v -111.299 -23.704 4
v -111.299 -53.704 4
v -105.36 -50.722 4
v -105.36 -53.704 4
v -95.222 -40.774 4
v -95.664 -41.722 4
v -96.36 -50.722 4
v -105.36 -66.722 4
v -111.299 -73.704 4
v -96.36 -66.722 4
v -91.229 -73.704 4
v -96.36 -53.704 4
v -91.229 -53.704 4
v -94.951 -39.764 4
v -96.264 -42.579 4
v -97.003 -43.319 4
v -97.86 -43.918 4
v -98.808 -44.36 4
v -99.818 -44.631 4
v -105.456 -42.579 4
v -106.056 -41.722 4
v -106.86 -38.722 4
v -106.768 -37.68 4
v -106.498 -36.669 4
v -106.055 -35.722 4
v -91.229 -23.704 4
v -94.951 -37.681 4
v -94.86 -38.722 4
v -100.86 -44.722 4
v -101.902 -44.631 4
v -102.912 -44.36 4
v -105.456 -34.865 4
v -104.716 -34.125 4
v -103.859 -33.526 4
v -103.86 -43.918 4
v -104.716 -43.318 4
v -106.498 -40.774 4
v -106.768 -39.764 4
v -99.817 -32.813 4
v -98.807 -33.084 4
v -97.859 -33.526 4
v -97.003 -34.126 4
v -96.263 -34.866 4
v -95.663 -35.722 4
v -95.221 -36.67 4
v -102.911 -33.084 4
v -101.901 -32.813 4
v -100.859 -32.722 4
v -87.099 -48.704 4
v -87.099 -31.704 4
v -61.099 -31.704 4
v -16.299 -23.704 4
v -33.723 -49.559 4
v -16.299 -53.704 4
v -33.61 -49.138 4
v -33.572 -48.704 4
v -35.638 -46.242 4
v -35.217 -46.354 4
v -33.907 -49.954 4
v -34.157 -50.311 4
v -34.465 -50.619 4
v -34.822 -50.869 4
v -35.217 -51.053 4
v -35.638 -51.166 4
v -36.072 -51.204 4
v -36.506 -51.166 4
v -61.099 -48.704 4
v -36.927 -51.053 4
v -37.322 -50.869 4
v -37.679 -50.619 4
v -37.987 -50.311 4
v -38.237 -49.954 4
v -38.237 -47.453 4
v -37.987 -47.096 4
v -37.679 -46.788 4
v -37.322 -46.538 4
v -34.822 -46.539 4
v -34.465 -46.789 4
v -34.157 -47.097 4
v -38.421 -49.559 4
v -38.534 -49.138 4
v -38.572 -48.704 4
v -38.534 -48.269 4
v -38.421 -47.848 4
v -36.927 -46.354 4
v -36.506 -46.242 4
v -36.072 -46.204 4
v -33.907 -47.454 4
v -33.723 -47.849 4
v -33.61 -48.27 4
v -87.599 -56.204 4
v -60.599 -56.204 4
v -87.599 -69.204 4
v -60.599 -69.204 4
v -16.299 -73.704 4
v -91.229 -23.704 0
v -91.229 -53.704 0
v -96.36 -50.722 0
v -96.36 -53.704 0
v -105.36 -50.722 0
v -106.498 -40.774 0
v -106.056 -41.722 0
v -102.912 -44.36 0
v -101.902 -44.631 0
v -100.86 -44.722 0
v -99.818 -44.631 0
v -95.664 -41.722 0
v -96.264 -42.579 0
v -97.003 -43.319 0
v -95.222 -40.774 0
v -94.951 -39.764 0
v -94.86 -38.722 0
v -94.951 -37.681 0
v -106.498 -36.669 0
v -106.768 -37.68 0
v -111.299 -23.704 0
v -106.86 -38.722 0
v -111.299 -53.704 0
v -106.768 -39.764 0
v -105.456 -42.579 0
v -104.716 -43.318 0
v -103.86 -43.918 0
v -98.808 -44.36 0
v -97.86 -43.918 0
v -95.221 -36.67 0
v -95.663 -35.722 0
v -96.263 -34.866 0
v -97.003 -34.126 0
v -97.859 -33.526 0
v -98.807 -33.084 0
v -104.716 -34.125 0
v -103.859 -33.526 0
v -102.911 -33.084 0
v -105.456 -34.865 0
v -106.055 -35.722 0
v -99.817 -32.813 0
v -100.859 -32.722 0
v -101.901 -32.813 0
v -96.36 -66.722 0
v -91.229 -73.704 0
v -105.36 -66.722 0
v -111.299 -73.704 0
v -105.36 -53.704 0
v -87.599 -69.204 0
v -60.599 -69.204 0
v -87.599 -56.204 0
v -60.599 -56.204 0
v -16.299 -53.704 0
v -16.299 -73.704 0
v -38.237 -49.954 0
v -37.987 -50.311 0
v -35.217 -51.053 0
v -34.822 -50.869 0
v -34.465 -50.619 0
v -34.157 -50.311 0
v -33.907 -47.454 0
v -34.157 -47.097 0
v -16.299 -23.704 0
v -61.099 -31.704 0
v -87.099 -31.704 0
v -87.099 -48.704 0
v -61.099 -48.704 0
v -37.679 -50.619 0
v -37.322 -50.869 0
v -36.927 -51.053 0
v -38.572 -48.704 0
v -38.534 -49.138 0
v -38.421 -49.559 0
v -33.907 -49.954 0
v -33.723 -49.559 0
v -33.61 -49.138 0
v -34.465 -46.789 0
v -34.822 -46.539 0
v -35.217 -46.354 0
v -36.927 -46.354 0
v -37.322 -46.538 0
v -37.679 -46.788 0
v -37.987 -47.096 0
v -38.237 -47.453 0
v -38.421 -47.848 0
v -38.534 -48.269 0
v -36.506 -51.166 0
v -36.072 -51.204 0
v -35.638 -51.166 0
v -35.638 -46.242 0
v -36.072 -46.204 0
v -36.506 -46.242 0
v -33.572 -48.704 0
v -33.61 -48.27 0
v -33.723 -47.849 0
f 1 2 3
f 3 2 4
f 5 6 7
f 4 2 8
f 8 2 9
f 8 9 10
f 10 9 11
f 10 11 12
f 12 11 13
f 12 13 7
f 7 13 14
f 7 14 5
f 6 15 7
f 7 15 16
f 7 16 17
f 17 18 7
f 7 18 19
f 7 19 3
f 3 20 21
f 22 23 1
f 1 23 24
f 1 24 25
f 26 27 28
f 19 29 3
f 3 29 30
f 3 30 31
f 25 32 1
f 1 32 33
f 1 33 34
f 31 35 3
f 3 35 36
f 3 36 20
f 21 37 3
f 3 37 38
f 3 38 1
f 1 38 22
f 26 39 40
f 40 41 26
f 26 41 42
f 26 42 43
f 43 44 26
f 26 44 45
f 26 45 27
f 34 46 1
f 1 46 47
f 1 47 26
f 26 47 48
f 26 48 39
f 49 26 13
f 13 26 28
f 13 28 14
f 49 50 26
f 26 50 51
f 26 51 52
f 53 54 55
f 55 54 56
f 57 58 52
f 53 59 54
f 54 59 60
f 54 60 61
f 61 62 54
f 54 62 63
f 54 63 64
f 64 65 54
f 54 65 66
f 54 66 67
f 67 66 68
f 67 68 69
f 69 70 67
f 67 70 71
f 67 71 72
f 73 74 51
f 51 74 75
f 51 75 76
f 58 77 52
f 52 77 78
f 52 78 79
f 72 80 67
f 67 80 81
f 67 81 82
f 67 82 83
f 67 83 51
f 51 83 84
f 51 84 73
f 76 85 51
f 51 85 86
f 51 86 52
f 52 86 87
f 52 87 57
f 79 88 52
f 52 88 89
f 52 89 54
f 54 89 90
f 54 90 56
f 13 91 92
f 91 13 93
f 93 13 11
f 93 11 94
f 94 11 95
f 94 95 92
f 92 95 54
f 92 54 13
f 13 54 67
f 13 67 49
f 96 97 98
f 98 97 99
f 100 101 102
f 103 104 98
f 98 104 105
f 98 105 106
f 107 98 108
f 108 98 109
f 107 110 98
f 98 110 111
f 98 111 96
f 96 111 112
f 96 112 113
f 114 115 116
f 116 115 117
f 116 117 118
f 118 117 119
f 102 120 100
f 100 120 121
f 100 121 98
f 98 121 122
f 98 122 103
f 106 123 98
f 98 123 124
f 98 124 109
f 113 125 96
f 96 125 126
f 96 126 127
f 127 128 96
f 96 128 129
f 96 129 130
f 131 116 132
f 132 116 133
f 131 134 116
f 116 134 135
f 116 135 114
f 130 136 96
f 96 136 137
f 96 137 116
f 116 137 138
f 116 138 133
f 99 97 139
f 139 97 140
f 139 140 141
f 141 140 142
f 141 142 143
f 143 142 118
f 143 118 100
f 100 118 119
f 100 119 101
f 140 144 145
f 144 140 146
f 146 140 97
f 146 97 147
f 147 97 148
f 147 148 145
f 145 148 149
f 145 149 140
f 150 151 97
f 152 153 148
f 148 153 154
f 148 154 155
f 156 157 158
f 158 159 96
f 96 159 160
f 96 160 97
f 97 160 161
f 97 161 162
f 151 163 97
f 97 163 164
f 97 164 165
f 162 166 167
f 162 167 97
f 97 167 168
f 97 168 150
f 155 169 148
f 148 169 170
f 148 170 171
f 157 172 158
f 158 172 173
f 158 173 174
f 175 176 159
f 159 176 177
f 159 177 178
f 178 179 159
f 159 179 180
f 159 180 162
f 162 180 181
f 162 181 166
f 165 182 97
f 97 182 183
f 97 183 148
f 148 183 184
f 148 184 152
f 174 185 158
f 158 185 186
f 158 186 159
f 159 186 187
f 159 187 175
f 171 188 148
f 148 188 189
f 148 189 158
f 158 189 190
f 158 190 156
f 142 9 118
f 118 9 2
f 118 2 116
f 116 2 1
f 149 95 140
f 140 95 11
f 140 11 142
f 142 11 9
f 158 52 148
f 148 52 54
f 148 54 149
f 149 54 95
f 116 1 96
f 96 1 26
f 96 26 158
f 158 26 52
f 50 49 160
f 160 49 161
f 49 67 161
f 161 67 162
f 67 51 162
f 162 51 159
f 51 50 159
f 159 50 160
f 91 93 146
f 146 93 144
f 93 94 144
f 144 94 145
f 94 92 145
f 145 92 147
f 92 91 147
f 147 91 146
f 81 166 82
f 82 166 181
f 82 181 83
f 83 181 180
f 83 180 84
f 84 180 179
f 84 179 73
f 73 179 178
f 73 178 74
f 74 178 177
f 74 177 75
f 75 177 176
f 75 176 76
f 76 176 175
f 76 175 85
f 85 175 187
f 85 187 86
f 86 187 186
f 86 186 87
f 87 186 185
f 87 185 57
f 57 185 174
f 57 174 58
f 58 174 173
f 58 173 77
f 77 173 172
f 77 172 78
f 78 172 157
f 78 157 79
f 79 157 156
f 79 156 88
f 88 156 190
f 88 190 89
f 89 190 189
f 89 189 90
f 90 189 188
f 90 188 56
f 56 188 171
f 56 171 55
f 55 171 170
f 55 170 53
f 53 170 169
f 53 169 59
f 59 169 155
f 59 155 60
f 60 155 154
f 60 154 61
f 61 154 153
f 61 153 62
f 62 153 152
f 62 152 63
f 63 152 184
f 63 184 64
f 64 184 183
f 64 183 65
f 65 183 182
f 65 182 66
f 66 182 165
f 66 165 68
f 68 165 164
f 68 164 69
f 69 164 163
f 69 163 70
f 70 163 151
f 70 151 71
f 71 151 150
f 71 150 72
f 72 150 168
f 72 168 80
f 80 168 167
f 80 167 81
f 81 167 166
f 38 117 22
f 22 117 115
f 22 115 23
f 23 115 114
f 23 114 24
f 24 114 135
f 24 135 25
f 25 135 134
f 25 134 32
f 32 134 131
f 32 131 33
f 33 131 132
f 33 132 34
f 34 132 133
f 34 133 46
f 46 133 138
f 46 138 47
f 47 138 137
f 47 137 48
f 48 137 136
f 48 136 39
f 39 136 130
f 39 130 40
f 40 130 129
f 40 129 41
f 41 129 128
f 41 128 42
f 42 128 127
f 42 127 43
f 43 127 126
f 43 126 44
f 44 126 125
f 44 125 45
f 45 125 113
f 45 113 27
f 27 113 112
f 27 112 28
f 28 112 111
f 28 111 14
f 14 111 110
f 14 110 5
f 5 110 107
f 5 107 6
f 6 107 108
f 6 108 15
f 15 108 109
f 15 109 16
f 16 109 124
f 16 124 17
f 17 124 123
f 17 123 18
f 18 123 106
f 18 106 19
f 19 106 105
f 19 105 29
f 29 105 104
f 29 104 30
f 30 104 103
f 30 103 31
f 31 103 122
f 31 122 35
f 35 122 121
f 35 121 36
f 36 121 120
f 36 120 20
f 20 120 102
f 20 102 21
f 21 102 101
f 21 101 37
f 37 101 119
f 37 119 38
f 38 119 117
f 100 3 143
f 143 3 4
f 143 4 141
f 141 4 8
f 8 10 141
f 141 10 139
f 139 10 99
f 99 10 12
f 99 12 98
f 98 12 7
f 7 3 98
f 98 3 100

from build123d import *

# Parameters (mm, degrees)
SKETCH3_W           = 95
SKETCH3_H           = 50
SKETCH3_RX          = 2.5
SKETCH3_RY          = 2.5
SKETCH3_RX_2        = 6
SKETCH3_RY_2        = 6
SKETCH3_W_2         = 26
SKETCH3_H_2         = 17
SKETCH3_W_3         = 27
SKETCH3_H_3         = 13
SKETCH3_W_4         = 9
SKETCH3_H_4         = 16
BOSS_EXTRUDE2_DEPTH = 4


with BuildPart() as part:
    # Sketch3 → Boss-Extrude2 (new body)
    with BuildSketch(Plane.XY):
        with Locations((-63.7985, -48.7036)):
            Rectangle(SKETCH3_W, SKETCH3_H)
        with Locations(Location((-36.0722, -48.7036), (0, 0, 90))):
            Ellipse(SKETCH3_RX, SKETCH3_RY, mode=Mode.SUBTRACT)
        with Locations(Location((-100.8596, -38.7221), (0, 0, 180))):
            Ellipse(SKETCH3_RX_2, SKETCH3_RY_2, mode=Mode.SUBTRACT)
        with Locations((-74.0985, -40.2036)):
            Rectangle(SKETCH3_W_2, SKETCH3_H_2, mode=Mode.SUBTRACT)
        with Locations((-74.0985, -62.7036)):
            Rectangle(SKETCH3_W_3, SKETCH3_H_3, mode=Mode.SUBTRACT)
        with Locations((-100.8596, -58.7221)):
            Rectangle(SKETCH3_W_4, SKETCH3_H_4, mode=Mode.SUBTRACT)
    extrude(amount=BOSS_EXTRUDE2_DEPTH)


solid = part.part
